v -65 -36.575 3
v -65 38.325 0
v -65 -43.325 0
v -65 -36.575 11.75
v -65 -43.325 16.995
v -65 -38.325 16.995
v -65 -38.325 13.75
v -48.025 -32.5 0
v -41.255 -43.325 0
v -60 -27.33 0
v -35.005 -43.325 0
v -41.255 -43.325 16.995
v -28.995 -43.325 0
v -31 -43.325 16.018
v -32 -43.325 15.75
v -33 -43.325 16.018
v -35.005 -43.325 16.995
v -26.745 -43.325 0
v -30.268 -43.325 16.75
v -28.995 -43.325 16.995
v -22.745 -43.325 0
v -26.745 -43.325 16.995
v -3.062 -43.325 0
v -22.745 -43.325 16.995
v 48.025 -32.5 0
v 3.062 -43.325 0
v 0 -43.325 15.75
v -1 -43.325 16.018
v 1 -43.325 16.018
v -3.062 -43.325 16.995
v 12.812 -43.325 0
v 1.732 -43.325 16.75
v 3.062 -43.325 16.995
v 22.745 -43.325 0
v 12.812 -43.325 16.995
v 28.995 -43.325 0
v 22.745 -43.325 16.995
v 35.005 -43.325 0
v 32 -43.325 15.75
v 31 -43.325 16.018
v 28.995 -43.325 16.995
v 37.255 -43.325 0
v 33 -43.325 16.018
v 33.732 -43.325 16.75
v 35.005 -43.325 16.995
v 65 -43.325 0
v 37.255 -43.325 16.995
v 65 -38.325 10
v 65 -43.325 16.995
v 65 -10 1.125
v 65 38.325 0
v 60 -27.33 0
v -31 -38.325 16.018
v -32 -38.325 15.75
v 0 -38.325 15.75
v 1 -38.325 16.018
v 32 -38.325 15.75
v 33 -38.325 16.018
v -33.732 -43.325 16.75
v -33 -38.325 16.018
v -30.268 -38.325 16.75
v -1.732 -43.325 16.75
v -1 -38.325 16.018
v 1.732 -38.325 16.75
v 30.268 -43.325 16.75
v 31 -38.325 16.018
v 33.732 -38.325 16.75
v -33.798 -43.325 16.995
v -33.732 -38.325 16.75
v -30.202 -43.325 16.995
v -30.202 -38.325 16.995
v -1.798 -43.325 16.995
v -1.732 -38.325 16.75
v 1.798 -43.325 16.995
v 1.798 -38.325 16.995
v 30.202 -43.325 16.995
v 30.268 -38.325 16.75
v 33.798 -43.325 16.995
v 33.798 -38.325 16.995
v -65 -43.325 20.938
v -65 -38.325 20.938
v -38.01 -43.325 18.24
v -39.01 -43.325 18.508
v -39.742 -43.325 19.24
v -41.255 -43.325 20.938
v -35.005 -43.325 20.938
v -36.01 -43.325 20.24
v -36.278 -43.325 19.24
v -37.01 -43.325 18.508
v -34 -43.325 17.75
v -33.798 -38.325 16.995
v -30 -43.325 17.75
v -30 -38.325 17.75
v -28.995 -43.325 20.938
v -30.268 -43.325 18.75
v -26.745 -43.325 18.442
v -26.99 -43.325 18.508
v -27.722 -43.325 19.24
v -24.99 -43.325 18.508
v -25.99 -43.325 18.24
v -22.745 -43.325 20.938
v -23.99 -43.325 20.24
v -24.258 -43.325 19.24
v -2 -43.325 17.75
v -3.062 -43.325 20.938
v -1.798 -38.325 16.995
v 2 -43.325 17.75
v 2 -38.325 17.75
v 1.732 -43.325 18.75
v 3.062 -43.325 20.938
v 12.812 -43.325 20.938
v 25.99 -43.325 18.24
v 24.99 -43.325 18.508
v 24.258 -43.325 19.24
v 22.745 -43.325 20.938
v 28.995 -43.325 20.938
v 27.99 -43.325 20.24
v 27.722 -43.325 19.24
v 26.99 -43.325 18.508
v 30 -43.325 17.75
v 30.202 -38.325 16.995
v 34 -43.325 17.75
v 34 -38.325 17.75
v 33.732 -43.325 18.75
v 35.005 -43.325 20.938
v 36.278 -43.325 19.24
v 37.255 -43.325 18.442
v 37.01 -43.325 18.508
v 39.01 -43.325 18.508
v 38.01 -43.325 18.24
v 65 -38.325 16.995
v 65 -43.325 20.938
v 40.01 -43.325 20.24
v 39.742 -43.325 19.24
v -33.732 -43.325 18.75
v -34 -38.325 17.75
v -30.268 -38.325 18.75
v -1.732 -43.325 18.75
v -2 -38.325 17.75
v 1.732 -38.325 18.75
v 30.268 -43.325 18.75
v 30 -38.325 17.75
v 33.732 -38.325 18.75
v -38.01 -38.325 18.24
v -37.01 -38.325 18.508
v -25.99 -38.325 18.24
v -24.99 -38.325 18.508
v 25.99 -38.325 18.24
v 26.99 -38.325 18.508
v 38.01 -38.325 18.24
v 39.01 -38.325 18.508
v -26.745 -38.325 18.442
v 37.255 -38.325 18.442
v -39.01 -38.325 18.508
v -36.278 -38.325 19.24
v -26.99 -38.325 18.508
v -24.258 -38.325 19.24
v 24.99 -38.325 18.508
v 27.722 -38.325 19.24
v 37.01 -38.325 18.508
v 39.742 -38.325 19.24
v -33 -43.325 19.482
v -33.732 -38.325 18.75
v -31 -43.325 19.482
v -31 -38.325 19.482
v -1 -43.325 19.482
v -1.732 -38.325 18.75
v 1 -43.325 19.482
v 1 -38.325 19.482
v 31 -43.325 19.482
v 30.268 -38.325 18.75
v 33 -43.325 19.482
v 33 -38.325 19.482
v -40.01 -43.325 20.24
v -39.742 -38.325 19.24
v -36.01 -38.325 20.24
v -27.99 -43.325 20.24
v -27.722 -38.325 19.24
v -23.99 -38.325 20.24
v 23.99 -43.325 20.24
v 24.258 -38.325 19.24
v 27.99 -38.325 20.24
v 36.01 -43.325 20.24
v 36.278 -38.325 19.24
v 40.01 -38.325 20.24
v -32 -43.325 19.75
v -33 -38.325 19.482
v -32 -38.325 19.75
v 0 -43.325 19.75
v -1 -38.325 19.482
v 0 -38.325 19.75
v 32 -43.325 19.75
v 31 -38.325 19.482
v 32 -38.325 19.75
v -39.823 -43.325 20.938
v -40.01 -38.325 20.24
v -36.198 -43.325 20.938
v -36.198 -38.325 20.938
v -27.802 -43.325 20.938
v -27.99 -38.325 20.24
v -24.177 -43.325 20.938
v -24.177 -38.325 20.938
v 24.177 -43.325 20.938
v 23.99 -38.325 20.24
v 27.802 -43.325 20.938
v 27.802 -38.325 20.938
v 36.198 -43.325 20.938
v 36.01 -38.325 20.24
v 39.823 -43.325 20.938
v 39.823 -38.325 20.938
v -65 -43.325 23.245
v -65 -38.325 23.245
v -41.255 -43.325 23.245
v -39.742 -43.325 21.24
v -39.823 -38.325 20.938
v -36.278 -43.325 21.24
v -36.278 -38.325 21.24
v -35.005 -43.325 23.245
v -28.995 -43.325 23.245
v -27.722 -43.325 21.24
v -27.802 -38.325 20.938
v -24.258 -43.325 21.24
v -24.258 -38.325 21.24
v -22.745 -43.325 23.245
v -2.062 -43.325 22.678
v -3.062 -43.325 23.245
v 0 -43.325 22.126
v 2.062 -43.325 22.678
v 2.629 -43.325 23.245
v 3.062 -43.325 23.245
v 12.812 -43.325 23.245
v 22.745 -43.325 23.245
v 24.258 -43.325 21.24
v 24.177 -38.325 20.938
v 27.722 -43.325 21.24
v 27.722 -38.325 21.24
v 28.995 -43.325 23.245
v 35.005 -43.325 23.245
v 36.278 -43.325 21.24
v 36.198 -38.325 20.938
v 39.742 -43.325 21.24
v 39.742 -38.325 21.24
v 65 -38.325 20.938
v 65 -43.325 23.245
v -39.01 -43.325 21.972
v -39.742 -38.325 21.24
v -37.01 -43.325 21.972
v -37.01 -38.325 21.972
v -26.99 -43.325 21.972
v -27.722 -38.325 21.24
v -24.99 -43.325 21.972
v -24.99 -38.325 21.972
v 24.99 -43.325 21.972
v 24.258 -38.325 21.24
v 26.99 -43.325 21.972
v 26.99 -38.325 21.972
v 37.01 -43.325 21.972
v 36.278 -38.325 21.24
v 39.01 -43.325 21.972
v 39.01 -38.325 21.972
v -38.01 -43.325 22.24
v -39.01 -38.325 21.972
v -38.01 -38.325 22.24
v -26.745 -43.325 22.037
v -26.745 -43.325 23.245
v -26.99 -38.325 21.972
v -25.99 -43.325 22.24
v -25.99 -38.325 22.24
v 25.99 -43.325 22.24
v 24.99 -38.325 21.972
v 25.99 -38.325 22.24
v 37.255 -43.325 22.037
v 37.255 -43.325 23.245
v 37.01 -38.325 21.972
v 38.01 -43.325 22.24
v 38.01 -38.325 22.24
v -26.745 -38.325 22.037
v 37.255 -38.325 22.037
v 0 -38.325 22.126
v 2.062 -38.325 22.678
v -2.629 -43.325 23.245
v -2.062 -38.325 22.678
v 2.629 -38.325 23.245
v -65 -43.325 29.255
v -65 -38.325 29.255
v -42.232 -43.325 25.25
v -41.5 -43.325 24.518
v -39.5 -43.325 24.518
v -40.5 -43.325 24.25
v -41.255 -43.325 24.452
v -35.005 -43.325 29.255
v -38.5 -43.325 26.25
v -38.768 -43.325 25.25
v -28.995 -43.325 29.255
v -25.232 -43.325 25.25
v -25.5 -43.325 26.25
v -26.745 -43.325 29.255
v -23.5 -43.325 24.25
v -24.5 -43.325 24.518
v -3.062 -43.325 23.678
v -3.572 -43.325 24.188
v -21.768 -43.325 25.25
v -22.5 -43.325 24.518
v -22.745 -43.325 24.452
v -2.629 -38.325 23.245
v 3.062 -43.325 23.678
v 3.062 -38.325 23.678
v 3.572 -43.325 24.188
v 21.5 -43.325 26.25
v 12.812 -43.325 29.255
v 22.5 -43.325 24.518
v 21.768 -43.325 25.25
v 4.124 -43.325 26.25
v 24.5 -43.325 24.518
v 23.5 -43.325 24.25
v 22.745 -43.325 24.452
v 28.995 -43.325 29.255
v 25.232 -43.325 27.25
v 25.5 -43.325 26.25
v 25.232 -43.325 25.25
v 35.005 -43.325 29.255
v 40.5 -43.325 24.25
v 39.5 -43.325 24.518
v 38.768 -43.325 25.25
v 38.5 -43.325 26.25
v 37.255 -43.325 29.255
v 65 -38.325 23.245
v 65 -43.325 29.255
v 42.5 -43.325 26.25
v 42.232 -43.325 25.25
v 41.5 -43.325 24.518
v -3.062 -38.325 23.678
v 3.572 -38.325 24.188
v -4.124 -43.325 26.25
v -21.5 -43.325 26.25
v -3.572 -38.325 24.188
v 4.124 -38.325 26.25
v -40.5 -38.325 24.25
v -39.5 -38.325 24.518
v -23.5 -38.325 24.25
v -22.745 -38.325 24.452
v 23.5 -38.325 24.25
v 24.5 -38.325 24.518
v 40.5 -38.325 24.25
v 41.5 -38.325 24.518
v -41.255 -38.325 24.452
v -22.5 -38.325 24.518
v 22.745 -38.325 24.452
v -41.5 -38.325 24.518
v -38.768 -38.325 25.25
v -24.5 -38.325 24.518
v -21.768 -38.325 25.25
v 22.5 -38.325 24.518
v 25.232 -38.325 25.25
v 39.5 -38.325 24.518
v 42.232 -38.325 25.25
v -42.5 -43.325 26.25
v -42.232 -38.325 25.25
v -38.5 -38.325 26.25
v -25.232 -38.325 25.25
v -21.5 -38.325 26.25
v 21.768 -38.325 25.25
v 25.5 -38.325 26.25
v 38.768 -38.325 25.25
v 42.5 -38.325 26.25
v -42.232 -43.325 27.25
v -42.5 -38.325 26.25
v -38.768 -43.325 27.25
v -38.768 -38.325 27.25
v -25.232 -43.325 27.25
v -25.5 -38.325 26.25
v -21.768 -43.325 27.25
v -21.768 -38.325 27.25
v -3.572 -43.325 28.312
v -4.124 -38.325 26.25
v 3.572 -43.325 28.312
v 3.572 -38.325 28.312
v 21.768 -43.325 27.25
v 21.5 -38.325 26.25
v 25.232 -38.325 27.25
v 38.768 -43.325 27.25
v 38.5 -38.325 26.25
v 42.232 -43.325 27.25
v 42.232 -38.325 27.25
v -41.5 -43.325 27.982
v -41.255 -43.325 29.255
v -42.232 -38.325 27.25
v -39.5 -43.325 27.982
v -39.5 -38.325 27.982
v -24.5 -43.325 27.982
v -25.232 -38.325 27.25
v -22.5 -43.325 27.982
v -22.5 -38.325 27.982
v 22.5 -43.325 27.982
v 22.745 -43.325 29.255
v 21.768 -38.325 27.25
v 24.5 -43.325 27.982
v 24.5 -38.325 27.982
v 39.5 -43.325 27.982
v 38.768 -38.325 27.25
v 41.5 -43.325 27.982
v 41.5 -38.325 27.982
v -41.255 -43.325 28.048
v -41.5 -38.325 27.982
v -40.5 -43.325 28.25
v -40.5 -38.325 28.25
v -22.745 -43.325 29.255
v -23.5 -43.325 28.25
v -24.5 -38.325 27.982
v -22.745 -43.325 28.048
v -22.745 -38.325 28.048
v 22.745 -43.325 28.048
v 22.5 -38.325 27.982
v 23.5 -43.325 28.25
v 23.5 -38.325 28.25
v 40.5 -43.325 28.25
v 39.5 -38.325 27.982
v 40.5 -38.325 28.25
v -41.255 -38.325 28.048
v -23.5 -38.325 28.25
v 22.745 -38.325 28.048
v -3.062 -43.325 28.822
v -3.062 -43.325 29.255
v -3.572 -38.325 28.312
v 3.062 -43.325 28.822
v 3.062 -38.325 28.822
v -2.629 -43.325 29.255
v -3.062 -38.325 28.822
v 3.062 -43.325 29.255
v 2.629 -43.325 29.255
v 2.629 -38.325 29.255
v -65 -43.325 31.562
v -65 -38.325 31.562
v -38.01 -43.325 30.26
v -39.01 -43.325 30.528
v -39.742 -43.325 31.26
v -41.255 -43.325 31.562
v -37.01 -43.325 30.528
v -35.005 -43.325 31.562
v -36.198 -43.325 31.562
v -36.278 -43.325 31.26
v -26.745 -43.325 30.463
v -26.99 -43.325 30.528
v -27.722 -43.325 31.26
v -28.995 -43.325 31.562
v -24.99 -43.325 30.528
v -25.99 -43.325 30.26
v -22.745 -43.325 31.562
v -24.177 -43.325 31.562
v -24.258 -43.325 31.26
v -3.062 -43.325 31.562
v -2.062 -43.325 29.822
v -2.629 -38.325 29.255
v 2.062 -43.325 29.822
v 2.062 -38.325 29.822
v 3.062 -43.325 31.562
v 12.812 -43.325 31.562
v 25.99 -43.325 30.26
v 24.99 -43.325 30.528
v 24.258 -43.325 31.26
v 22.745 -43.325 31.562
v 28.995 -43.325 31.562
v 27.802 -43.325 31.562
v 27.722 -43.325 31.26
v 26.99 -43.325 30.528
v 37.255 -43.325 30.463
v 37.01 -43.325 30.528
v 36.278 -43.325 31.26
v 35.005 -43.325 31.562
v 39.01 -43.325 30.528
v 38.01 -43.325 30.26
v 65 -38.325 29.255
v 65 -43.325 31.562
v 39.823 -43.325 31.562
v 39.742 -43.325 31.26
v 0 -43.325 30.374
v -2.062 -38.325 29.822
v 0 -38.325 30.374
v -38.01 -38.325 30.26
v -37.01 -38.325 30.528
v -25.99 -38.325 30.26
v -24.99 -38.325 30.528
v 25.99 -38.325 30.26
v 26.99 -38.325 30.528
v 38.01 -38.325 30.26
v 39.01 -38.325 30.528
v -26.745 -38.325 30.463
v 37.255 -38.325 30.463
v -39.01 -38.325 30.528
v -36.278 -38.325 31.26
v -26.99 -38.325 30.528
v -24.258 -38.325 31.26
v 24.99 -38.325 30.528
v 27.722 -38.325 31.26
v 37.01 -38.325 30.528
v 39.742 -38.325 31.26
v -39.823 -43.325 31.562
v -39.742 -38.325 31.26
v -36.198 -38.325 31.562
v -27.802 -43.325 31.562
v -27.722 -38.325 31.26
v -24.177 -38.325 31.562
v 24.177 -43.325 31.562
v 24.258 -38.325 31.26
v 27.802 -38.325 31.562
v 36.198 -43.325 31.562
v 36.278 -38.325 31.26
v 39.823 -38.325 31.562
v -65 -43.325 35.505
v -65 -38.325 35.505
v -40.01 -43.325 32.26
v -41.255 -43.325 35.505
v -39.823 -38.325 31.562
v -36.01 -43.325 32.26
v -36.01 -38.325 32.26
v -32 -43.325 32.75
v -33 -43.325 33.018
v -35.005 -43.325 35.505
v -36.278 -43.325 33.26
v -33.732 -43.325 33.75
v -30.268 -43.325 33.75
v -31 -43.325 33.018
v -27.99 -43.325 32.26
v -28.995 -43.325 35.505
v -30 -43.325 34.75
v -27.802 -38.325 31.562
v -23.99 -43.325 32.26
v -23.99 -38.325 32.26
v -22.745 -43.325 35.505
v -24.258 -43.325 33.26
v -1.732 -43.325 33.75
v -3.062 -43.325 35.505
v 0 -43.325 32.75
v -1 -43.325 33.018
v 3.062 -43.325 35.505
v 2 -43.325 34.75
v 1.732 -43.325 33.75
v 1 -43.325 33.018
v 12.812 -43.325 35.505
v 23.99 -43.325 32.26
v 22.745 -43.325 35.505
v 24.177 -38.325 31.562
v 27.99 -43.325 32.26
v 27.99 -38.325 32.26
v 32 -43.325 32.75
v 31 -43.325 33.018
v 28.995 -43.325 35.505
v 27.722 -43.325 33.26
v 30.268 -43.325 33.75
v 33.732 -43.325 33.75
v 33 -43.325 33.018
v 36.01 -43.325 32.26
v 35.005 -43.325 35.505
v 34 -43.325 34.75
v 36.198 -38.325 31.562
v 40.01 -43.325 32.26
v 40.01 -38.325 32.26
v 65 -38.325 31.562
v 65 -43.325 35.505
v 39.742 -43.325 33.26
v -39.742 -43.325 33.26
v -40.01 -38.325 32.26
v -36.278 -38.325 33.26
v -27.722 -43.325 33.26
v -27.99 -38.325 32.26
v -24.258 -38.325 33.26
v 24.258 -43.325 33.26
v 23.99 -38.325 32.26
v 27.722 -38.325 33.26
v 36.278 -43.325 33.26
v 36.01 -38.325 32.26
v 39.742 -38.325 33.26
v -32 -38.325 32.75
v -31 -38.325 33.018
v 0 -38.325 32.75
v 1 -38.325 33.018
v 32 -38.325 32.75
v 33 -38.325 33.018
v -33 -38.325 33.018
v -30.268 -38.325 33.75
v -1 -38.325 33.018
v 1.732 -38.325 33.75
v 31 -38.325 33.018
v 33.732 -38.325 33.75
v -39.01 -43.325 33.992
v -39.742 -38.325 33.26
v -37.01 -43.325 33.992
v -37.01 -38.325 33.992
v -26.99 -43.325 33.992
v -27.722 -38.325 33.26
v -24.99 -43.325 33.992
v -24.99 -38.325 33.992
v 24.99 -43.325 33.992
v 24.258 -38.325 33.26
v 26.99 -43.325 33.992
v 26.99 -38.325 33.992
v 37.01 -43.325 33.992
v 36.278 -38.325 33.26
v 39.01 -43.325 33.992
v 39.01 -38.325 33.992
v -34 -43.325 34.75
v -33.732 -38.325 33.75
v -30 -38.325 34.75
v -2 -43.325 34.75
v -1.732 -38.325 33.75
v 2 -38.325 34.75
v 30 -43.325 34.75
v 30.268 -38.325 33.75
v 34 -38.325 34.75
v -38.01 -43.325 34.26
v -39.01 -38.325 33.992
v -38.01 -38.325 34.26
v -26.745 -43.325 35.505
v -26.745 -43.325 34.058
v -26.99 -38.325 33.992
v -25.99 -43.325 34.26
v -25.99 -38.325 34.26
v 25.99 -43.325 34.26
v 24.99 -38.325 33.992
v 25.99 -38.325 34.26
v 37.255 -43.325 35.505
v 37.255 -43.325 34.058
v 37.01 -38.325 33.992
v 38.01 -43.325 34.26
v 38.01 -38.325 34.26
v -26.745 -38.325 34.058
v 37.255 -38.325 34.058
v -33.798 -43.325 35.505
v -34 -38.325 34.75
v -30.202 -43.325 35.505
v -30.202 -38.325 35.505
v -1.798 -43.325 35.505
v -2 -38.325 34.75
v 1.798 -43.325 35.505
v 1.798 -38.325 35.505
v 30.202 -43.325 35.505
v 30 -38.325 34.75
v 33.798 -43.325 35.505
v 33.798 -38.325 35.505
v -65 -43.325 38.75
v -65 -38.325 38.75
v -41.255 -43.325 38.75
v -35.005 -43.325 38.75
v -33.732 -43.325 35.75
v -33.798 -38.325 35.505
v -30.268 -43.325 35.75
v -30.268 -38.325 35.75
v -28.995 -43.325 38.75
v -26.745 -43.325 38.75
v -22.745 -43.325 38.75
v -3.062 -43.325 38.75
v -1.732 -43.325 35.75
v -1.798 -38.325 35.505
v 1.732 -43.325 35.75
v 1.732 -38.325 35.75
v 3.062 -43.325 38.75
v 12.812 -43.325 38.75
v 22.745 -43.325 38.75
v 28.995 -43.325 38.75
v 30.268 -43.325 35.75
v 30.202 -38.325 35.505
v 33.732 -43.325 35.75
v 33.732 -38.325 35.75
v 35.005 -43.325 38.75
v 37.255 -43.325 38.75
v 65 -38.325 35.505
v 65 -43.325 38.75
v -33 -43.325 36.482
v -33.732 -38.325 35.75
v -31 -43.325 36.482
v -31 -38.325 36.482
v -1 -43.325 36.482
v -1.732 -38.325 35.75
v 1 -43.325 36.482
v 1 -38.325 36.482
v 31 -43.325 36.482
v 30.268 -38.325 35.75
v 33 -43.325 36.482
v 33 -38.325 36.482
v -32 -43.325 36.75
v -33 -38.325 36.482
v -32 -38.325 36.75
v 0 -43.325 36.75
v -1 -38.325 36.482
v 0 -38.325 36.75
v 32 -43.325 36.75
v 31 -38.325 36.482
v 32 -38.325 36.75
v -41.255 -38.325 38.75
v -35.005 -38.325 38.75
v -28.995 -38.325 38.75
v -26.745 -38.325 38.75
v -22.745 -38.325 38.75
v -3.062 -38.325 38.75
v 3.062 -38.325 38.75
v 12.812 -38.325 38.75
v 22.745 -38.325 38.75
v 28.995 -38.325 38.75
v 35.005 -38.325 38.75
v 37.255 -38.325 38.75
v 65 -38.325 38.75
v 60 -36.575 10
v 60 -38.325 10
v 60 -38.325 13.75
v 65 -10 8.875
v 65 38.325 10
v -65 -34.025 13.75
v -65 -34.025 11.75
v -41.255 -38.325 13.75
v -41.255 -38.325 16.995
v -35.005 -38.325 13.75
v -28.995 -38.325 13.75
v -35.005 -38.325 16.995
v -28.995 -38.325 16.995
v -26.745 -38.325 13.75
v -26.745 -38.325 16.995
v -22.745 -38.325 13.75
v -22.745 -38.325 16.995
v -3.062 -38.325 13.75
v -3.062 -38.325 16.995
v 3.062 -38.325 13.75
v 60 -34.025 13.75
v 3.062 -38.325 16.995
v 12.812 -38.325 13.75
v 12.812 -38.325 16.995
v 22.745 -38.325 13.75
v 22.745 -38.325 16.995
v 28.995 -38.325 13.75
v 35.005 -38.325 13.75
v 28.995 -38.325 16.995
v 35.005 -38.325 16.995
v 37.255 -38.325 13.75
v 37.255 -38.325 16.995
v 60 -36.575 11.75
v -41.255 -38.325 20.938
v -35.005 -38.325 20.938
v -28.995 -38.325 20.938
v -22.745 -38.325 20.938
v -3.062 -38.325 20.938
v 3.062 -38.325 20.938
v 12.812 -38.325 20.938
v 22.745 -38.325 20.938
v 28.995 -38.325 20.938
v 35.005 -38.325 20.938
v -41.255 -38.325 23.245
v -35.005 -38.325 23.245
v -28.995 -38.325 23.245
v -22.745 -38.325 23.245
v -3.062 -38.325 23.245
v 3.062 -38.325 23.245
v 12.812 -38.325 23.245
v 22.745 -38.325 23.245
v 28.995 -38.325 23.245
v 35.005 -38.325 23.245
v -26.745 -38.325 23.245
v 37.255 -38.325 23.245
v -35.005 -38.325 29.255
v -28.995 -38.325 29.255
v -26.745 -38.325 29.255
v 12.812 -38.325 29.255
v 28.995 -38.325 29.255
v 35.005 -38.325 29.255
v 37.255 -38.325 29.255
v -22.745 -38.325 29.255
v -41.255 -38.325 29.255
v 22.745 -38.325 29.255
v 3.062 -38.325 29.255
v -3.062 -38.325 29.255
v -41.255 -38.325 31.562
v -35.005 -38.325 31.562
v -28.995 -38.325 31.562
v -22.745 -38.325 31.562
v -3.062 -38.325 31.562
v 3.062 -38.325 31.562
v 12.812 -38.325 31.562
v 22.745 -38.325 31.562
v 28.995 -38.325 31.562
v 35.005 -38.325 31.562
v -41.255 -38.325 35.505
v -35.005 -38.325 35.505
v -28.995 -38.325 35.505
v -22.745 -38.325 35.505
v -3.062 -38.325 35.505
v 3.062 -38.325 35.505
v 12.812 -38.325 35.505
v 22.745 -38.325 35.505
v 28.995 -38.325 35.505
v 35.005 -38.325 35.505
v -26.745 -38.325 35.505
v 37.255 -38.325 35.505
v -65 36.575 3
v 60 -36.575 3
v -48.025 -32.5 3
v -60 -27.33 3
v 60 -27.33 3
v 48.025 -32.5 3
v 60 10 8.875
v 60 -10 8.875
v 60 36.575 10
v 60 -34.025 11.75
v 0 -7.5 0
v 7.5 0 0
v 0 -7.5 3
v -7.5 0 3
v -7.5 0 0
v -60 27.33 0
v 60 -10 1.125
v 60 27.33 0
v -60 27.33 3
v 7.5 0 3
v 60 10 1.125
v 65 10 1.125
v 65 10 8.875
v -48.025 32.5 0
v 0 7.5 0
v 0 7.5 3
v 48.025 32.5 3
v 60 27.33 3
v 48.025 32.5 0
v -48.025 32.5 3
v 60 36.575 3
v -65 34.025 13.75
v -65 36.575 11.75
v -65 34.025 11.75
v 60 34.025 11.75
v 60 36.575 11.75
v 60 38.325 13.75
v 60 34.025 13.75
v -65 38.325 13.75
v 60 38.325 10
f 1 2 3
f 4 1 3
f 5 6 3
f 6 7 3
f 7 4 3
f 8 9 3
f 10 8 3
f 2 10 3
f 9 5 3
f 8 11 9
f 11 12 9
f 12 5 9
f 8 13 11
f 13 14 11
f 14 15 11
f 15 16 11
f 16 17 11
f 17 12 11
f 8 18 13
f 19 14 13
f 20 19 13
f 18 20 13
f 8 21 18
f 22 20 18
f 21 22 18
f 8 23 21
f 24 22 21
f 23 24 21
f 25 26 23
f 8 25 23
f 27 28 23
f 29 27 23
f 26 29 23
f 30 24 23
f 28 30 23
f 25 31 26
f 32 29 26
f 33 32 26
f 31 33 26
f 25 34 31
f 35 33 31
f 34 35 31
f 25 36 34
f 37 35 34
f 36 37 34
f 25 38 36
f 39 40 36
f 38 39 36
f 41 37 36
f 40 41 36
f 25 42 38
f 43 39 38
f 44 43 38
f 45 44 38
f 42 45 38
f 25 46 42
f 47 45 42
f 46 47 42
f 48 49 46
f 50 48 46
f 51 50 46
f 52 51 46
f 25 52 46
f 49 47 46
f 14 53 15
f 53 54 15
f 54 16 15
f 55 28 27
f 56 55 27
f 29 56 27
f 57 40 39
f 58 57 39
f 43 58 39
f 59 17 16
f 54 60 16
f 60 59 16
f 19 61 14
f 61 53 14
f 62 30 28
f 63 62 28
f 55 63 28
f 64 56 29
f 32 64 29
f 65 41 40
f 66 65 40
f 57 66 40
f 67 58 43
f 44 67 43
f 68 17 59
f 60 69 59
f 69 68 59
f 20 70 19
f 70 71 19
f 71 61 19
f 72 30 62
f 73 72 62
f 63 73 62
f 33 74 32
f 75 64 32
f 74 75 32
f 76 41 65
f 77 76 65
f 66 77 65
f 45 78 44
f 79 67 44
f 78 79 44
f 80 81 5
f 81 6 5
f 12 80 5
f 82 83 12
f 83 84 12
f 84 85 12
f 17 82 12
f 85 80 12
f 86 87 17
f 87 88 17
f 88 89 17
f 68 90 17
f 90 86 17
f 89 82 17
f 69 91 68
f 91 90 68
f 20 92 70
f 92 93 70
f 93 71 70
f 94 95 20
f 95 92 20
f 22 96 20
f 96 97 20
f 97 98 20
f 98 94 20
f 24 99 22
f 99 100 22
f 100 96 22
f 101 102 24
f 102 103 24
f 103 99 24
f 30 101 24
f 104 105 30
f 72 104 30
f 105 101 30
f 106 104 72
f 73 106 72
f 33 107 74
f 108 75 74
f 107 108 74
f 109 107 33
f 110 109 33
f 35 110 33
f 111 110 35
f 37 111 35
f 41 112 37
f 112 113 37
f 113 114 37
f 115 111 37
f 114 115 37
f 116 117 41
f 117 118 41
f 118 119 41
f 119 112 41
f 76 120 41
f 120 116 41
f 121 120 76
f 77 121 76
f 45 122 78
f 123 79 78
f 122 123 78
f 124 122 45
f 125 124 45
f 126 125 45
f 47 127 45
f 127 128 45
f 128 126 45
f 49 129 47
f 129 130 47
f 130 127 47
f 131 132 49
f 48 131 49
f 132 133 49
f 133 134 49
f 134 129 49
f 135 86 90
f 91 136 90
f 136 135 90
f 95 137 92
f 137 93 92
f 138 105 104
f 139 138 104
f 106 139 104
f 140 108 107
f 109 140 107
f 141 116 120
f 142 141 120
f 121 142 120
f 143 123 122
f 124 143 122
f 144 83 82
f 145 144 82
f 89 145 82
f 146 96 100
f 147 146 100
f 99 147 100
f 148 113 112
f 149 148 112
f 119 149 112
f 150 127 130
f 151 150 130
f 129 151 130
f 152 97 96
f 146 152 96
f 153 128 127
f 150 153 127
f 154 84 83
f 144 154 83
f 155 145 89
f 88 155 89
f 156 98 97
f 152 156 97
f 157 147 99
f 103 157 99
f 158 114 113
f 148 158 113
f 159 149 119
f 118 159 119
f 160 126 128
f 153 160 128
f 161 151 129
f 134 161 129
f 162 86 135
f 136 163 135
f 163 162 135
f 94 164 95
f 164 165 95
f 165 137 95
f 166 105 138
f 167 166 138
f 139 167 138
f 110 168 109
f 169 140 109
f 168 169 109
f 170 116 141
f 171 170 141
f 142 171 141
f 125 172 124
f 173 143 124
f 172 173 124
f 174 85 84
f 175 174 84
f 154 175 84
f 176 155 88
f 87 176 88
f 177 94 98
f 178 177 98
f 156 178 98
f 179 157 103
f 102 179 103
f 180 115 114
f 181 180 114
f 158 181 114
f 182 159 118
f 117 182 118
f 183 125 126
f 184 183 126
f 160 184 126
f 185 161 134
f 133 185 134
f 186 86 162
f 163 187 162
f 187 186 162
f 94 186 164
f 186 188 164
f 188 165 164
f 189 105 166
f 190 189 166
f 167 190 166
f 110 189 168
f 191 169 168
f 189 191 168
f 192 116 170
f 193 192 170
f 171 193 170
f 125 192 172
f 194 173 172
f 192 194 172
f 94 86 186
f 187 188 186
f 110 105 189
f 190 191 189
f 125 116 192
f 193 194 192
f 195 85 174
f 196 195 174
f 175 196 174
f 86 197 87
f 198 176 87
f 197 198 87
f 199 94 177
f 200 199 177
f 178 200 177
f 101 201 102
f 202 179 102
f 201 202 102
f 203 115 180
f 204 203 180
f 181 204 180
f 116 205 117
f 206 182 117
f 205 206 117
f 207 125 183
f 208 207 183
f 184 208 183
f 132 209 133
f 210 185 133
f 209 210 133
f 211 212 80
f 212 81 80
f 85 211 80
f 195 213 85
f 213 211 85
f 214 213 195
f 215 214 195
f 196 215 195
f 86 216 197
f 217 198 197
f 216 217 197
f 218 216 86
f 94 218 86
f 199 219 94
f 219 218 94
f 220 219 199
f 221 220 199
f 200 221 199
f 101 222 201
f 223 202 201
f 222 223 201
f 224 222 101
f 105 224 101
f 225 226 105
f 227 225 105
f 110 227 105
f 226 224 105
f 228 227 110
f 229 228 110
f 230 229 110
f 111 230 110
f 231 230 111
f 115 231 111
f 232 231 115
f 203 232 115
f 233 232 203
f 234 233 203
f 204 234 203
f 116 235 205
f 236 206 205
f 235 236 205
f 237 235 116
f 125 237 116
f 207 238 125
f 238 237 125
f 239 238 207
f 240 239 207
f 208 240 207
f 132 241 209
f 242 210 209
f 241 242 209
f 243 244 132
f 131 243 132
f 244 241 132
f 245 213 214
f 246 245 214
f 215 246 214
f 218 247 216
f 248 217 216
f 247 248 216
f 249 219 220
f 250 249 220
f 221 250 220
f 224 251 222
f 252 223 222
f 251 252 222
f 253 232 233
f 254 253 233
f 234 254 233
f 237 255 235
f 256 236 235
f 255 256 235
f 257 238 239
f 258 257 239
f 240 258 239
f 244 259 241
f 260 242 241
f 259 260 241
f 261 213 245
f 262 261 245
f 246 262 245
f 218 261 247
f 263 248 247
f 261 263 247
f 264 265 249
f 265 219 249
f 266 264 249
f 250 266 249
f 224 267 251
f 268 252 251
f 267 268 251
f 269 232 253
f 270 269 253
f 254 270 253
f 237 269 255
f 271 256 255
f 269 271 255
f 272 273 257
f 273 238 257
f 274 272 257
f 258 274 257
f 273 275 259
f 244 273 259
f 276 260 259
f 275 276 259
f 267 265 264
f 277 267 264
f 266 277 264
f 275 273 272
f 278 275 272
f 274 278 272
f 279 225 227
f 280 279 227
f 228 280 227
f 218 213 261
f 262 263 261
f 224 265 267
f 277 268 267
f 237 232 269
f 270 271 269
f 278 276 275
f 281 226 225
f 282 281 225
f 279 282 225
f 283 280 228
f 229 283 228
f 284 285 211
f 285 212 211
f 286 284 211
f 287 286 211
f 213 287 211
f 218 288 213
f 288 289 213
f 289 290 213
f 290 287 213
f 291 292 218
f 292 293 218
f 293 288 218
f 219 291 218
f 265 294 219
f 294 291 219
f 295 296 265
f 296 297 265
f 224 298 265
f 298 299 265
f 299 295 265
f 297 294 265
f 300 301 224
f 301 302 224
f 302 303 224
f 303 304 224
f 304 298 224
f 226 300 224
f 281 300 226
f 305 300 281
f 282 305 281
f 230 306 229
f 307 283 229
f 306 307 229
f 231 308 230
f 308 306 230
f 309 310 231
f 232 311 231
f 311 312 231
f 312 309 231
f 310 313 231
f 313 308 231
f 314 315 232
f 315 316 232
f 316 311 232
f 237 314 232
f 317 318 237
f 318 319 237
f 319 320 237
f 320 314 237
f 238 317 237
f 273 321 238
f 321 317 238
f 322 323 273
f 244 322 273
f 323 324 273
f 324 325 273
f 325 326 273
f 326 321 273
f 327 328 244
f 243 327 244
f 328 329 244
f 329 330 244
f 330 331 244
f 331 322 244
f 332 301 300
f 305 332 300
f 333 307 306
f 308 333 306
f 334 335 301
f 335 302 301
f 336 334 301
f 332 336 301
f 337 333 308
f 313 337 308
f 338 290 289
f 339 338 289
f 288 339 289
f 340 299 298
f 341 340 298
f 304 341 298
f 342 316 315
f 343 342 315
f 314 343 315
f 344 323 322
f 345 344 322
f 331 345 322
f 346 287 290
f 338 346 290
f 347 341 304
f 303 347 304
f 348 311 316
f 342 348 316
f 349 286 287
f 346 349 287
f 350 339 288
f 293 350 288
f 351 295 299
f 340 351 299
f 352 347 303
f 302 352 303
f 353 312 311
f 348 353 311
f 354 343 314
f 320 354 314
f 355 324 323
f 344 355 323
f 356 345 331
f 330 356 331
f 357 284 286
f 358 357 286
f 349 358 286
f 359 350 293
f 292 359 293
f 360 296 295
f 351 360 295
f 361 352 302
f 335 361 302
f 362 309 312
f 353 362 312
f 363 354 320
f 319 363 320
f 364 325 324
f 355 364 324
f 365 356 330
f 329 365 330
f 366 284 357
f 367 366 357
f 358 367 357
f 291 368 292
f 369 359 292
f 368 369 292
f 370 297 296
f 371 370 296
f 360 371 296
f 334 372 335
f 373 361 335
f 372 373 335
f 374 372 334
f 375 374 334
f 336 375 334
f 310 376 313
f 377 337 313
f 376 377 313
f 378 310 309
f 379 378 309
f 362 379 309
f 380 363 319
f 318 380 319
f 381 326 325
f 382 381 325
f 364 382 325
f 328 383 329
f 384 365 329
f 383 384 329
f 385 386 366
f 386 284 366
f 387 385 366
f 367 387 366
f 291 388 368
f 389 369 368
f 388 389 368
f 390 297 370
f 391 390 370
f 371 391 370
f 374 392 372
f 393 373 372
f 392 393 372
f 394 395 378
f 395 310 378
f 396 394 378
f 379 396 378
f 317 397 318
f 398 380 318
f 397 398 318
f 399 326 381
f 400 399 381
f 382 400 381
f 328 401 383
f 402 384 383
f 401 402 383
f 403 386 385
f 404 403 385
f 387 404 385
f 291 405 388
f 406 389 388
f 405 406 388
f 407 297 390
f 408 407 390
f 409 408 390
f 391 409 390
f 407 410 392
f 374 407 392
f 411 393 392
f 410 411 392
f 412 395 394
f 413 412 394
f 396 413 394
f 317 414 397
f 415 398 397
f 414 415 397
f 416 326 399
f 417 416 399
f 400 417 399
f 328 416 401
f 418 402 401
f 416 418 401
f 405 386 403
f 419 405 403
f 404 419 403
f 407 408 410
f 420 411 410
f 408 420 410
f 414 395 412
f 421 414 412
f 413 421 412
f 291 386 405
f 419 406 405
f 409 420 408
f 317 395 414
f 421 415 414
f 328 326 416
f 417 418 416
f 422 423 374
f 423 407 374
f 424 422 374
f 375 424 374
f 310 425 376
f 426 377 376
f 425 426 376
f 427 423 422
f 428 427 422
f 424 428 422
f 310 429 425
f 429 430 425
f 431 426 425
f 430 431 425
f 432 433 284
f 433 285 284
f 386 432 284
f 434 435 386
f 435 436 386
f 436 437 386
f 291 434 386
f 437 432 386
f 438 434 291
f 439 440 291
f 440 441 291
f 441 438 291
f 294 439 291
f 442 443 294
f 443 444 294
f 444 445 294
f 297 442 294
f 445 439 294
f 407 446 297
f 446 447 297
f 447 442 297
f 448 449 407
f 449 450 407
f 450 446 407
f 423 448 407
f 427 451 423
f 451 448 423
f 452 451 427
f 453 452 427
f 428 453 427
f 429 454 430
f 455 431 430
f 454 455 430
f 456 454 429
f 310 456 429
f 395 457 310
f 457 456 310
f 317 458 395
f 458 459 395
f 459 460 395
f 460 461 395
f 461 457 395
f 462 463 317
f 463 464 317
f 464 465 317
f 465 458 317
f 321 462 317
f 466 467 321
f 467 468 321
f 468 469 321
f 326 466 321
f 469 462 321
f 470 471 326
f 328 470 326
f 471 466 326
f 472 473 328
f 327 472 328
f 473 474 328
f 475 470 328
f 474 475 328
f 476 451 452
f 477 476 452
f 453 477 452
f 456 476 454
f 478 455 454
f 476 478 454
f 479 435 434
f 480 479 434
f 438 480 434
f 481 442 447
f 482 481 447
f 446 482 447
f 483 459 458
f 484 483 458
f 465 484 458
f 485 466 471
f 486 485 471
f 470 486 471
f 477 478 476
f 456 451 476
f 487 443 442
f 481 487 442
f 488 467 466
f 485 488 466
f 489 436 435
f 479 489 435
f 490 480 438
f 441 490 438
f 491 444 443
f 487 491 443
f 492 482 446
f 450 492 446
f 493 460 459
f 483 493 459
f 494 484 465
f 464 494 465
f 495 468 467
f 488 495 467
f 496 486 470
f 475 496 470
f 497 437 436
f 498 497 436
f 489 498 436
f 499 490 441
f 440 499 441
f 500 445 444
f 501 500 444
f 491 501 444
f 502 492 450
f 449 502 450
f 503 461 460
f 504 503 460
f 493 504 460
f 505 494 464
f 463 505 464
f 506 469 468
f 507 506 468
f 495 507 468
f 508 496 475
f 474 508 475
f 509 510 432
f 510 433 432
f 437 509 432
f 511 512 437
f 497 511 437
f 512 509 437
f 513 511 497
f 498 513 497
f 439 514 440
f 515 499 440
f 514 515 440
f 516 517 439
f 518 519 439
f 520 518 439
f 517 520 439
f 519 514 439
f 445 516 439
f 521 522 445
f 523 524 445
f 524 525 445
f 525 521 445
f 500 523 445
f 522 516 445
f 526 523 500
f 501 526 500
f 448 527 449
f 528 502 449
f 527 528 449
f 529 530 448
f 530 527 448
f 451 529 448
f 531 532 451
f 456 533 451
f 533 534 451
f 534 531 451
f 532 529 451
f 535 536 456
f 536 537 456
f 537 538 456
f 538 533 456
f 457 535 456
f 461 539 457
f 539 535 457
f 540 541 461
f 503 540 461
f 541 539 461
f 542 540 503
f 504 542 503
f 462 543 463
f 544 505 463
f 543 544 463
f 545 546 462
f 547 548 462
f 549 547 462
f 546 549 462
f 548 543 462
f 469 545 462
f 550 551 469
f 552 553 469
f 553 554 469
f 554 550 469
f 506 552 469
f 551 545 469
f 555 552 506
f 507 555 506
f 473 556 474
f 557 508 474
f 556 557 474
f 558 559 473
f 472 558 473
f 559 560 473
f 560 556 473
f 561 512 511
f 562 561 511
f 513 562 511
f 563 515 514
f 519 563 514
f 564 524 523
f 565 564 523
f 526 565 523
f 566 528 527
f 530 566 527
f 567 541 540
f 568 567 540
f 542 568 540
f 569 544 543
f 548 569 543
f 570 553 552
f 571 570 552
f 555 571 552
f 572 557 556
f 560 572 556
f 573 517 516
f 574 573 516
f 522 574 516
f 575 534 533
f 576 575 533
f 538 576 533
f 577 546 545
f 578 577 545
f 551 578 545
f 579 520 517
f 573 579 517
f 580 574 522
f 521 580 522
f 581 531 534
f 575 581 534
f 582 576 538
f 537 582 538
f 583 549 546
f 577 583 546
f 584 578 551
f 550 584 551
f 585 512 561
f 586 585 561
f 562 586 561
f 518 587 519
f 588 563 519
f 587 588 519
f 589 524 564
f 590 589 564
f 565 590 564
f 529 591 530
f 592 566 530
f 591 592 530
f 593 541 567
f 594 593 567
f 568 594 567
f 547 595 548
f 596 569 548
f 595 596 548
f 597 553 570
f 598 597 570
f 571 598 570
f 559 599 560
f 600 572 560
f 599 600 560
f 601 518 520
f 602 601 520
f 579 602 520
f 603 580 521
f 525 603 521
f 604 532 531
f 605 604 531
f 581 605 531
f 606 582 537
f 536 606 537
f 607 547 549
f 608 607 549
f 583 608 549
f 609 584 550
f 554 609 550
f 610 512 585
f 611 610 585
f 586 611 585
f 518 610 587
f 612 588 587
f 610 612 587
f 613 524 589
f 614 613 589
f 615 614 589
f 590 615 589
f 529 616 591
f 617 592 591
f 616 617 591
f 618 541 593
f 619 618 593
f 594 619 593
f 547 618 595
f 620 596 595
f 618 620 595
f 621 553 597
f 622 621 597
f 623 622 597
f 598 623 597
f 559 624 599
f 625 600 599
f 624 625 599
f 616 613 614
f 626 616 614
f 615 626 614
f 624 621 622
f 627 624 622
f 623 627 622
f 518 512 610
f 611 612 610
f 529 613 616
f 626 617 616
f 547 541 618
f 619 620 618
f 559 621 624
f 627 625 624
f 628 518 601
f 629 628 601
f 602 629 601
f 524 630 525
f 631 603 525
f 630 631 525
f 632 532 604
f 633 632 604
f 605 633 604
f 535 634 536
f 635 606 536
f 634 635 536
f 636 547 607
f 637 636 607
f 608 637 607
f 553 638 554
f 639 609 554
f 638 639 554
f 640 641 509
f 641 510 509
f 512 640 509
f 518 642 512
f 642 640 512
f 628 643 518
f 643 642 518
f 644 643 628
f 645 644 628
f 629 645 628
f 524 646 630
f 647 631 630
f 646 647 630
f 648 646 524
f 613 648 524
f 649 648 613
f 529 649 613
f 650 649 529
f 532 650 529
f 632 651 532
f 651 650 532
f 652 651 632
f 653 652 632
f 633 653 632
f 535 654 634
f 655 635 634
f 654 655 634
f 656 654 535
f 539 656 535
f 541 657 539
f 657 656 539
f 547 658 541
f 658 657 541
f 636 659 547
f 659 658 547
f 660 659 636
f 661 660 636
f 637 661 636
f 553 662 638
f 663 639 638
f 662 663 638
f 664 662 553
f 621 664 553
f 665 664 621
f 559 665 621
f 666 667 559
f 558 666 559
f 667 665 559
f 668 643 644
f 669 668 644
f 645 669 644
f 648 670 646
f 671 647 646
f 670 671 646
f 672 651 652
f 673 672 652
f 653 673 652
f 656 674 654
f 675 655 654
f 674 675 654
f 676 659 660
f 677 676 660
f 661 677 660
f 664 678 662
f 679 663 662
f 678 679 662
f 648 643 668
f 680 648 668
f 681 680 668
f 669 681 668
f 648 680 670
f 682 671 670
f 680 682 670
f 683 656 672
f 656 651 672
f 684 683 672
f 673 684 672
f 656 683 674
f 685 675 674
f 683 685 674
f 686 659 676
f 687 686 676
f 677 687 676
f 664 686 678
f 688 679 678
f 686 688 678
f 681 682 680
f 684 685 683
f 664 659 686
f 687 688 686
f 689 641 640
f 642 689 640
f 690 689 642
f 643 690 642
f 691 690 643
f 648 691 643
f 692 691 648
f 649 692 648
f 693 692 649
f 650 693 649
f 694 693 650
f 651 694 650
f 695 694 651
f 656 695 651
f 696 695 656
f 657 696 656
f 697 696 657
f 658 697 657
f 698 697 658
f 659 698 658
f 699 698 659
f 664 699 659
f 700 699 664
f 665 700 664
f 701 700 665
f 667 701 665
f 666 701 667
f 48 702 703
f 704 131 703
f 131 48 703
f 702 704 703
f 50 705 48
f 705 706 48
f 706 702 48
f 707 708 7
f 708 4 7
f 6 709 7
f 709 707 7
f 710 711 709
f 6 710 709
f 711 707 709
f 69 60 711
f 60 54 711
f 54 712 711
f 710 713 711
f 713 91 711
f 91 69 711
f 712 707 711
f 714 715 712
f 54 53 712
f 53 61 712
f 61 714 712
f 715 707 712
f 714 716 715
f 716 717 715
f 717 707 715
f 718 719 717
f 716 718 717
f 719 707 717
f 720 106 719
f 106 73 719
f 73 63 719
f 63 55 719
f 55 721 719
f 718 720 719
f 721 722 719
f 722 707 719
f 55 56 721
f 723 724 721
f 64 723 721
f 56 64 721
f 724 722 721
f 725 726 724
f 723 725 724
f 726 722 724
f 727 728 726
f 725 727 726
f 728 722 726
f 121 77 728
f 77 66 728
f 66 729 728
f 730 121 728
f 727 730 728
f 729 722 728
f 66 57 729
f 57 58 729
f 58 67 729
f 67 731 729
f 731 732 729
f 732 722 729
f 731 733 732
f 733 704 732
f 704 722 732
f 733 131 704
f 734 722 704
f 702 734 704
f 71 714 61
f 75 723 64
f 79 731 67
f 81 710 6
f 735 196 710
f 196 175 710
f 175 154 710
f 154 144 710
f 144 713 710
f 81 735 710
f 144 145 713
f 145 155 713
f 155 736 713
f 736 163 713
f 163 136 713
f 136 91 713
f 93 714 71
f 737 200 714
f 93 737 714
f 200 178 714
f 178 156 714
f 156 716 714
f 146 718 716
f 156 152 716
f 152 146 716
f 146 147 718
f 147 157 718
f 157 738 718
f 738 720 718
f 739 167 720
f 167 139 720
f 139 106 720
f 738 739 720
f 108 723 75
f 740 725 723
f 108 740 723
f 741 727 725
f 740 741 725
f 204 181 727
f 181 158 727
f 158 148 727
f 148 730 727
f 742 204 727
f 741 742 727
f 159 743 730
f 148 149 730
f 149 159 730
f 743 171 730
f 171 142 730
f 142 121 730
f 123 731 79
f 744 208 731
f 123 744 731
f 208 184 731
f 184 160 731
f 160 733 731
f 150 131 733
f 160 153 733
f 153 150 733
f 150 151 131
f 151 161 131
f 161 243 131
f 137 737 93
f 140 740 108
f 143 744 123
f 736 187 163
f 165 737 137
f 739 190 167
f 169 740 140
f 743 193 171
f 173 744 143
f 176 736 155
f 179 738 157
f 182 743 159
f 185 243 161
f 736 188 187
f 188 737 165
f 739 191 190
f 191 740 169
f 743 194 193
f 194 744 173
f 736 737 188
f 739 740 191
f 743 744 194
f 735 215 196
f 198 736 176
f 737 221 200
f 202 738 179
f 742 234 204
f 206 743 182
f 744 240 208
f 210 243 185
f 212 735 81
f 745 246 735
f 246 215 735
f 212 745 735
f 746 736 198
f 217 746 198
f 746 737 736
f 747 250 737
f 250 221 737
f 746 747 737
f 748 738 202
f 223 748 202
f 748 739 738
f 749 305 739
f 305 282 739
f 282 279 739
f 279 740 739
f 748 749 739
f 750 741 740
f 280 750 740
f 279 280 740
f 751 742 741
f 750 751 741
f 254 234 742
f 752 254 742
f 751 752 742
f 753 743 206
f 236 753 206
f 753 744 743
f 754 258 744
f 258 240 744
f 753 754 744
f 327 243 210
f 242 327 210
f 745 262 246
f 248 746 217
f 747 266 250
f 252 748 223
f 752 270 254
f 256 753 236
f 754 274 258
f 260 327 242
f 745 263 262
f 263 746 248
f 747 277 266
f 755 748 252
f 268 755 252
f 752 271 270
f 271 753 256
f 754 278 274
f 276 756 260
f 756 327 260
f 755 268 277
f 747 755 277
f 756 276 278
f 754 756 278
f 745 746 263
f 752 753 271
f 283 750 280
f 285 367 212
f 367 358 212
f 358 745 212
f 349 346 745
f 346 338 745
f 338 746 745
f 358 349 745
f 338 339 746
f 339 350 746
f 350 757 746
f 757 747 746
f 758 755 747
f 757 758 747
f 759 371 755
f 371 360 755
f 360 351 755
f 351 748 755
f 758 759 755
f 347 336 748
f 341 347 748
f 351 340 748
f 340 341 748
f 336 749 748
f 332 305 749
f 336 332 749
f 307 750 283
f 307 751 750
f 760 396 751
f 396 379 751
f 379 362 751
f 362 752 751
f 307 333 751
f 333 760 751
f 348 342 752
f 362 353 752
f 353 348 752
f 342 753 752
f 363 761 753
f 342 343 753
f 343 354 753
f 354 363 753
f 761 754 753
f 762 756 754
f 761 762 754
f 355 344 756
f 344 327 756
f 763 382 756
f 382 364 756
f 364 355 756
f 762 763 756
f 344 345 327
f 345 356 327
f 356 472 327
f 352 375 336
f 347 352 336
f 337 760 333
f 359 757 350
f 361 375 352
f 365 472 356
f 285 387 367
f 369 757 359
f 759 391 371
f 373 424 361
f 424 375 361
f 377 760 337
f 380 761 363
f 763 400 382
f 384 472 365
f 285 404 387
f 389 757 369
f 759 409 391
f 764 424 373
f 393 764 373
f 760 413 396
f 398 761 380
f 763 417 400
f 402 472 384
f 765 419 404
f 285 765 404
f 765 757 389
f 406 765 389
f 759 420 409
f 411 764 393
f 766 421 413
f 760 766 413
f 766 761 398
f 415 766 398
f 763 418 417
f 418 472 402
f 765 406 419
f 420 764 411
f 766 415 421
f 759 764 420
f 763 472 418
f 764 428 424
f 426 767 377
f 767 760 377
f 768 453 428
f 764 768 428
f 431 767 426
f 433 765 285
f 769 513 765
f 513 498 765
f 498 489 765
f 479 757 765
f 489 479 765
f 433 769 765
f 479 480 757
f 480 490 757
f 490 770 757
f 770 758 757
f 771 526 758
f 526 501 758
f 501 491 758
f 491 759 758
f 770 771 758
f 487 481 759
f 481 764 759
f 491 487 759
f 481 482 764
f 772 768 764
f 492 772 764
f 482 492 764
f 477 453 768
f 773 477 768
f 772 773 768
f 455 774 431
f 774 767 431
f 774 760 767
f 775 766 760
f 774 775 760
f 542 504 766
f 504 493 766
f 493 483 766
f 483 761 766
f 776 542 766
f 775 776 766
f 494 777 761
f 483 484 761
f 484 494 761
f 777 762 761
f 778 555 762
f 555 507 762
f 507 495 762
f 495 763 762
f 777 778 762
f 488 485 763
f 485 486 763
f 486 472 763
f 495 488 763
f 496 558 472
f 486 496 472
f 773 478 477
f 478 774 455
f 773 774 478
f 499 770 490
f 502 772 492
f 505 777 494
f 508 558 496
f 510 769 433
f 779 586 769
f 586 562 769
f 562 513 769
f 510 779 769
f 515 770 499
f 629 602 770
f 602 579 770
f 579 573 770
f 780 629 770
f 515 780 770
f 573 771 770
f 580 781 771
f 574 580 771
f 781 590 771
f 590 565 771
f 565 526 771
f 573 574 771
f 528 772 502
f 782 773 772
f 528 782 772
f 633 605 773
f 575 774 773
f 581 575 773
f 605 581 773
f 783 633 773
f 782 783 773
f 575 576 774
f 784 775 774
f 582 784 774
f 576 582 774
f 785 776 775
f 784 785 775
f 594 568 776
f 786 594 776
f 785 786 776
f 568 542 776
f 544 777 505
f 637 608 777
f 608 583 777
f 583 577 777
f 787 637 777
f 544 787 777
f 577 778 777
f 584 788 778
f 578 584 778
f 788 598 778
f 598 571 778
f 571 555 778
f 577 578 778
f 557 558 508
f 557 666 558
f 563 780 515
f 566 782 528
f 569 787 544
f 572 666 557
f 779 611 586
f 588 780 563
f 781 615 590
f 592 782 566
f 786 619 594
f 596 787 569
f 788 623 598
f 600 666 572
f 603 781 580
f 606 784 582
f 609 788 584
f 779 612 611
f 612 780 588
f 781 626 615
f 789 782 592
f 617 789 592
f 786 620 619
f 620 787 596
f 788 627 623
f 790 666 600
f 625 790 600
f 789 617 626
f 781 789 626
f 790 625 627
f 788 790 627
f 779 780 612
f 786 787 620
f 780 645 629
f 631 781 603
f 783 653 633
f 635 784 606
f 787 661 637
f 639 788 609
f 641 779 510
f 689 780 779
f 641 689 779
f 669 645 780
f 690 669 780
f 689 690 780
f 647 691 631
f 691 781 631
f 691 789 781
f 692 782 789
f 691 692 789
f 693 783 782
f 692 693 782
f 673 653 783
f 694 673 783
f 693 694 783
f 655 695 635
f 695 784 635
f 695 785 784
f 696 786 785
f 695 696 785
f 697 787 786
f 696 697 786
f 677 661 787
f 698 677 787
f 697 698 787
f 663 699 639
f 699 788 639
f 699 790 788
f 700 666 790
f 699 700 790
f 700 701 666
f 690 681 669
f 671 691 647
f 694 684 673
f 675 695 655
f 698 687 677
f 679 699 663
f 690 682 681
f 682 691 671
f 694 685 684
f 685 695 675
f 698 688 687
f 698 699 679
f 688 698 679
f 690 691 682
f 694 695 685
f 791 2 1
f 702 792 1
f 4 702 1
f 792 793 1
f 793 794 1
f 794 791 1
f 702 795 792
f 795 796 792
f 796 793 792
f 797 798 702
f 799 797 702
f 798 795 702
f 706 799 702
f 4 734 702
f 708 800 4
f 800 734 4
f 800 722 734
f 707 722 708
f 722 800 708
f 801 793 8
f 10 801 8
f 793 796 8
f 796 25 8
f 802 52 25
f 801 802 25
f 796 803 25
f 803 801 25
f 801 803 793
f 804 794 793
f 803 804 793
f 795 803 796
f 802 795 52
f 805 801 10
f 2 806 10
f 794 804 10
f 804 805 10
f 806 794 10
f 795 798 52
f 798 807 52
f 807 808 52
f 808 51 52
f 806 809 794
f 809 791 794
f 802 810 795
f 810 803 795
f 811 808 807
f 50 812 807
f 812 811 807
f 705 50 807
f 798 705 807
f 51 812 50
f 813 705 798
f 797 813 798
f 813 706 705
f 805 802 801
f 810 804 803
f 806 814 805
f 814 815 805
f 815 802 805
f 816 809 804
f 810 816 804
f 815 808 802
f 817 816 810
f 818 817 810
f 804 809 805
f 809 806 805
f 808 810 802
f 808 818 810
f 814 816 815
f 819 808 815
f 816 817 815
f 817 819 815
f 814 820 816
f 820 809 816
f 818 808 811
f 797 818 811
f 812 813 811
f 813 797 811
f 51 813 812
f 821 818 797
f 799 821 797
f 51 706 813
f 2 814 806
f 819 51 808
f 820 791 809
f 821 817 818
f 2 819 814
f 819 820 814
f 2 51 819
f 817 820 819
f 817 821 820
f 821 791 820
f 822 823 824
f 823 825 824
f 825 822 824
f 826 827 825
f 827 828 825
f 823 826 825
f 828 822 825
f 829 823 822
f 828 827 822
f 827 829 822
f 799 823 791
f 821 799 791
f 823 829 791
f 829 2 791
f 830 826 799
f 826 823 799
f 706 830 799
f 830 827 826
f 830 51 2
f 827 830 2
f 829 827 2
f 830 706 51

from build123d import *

# Parameters (mm, degrees)
BOSS_EXTRUDE1_DEPTH = 38.75
BOSS_EXTRUDE2_DEPTH = 3
SKETCH1_5_W         = 125
SKETCH1_5_H         = 1.75
BOSS_EXTRUDE3_DEPTH = 11.75
BOSS_EXTRUDE5_START = 11.75
SKETCH1_7_W         = 125
SKETCH1_7_H         = 4.3
BOSS_EXTRUDE5_DEPTH = 2
SKETCH2_R           = 2
SKETCH2_R_2         = 4.124206023
CUT_EXTRUDE1_DEPTH  = 13.75
SKETCH1_9_W         = 5
SKETCH1_9_H         = 76.65
BOSS_EXTRUDE7_DEPTH = 10
SKETCH3_W           = 7.75
SKETCH3_H           = 20
CUT_EXTRUDE2_DEPTH  = 10


with BuildPart() as part:
    # Sketch1 → Boss-Extrude1 (new body)
    with BuildSketch(Plane.XY):
        Polygon((65, -43.325), (65, -38.325), (60, -38.325), (-65, -38.325), (-65, -43.325), align=None)
    extrude(amount=BOSS_EXTRUDE1_DEPTH)

    # Sketch1<5> → Boss-Extrude3 (add)
    with BuildSketch(Plane.XY):
        with Locations((-2.5, 37.45)):
            Rectangle(SKETCH1_5_W, SKETCH1_5_H)
        with Locations((-2.5, -37.45)):
            Rectangle(SKETCH1_5_W, SKETCH1_5_H)
    extrude(amount=BOSS_EXTRUDE3_DEPTH)


with BuildPart() as body_2:
    # Sketch1<4> → Boss-Extrude2 (new body)
    with BuildSketch(Plane.XY):
        Polygon((60, 36.575), (-65, 36.575), (-65, -36.575), (60, -36.575), (60, -27.329770154), (7.5, 0), (60, 27.329770154), align=None)
        Polygon((48.024553174, 32.5), (0, 7.5), (-48.024553174, 32.5), align=None, mode=Mode.SUBTRACT)
        Polygon((-60, -27.329770154), (-60, 27.329770154), (-7.5, 0), align=None, mode=Mode.SUBTRACT)
        Polygon((48.024553174, -32.5), (-48.024553174, -32.5), (0, -7.5), align=None, mode=Mode.SUBTRACT)
    extrude(amount=BOSS_EXTRUDE2_DEPTH)



with BuildPart() as boss_extrude3_piece_1:
    # of the separate pieces the step leaves, piece 1, a body of its own (boss_extrude3_pieces)
    add(part.part.solids().sort_by_distance((65, -43.325, 0))[0])



with BuildPart() as boss_extrude3_piece_2:
    # of the separate pieces the step leaves, piece 2, a body of its own (boss_extrude3_pieces)
    add(part.part.solids().sort_by_distance((60, 36.575, 0))[0])


with BuildPart() as boss_extrude3_piece_1_1:
    add(boss_extrude3_piece_1.part)

    add(boss_extrude3_piece_2.part)  # Boss-Extrude5 merges Boss-Extrude3 piece 2
    # Sketch1<7> → Boss-Extrude5 (add)
    with BuildSketch(Plane.XY.offset(BOSS_EXTRUDE5_START)):
        with Locations((-2.5, 36.175)):
            Rectangle(SKETCH1_7_W, SKETCH1_7_H)
        with Locations((-2.5, -36.175)):
            Rectangle(SKETCH1_7_W, SKETCH1_7_H)
    extrude(amount=BOSS_EXTRUDE5_DEPTH)

    # Sketch2 → Cut-Extrude1 (cut)
    with BuildSketch(Plane.XZ.offset(43.325)):
        with Locations((32, 34.75)):
            Circle(SKETCH2_R)
        with Locations((23.5, 26.25)):
            Circle(SKETCH2_R)
        with Locations((0, 34.75)):
            Circle(SKETCH2_R)
        with Locations((0, 17.75)):
            Circle(SKETCH2_R)
        with Locations((0, 26.25)):
            Circle(SKETCH2_R_2)
        with Locations((38.01040764, 32.26040764)):
            Circle(SKETCH2_R)
        with Locations((40.5, 26.25)):
            Circle(SKETCH2_R)
        with Locations((38.01040764, 20.23959236)):
            Circle(SKETCH2_R)
        with Locations((32, 17.75)):
            Circle(SKETCH2_R)
        with Locations((25.98959236, 20.23959236)):
            Circle(SKETCH2_R)
        with Locations((25.98959236, 32.26040764)):
            Circle(SKETCH2_R)
        with Locations((-38.01040764, 20.23959236)):
            Circle(SKETCH2_R)
        with Locations((-32, 17.75)):
            Circle(SKETCH2_R)
        with Locations((-25.98959236, 20.23959236)):
            Circle(SKETCH2_R)
        with Locations((-23.5, 26.25)):
            Circle(SKETCH2_R)
        with Locations((-25.98959236, 32.26040764)):
            Circle(SKETCH2_R)
        with Locations((-32, 34.75)):
            Circle(SKETCH2_R)
        with Locations((-38.01040764, 32.26040764)):
            Circle(SKETCH2_R)
        with Locations((-40.5, 26.25)):
            Circle(SKETCH2_R)
    extrude(amount=-CUT_EXTRUDE1_DEPTH, mode=Mode.SUBTRACT)


with BuildPart() as body_2_1:
    add(body_2.part)

    add(boss_extrude3_piece_1_1.part)  # Boss-Extrude7 merges Boss-Extrude3 piece 1
    # Sketch1<9> → Boss-Extrude7 (add)
    with BuildSketch(Plane.XY):
        with Locations((62.5, 0)):
            Rectangle(SKETCH1_9_W, SKETCH1_9_H)
    extrude(amount=BOSS_EXTRUDE7_DEPTH)

    # Sketch3 → Cut-Extrude2 (cut)
    with BuildSketch(Plane(origin=(65, 0, 0), x_dir=(0, 0, -1), z_dir=(1, 0, 0))):
        with Locations((-5, 0)):
            Rectangle(SKETCH3_W, SKETCH3_H)
    extrude(amount=-CUT_EXTRUDE2_DEPTH, mode=Mode.SUBTRACT)


solid = body_2_1.part
